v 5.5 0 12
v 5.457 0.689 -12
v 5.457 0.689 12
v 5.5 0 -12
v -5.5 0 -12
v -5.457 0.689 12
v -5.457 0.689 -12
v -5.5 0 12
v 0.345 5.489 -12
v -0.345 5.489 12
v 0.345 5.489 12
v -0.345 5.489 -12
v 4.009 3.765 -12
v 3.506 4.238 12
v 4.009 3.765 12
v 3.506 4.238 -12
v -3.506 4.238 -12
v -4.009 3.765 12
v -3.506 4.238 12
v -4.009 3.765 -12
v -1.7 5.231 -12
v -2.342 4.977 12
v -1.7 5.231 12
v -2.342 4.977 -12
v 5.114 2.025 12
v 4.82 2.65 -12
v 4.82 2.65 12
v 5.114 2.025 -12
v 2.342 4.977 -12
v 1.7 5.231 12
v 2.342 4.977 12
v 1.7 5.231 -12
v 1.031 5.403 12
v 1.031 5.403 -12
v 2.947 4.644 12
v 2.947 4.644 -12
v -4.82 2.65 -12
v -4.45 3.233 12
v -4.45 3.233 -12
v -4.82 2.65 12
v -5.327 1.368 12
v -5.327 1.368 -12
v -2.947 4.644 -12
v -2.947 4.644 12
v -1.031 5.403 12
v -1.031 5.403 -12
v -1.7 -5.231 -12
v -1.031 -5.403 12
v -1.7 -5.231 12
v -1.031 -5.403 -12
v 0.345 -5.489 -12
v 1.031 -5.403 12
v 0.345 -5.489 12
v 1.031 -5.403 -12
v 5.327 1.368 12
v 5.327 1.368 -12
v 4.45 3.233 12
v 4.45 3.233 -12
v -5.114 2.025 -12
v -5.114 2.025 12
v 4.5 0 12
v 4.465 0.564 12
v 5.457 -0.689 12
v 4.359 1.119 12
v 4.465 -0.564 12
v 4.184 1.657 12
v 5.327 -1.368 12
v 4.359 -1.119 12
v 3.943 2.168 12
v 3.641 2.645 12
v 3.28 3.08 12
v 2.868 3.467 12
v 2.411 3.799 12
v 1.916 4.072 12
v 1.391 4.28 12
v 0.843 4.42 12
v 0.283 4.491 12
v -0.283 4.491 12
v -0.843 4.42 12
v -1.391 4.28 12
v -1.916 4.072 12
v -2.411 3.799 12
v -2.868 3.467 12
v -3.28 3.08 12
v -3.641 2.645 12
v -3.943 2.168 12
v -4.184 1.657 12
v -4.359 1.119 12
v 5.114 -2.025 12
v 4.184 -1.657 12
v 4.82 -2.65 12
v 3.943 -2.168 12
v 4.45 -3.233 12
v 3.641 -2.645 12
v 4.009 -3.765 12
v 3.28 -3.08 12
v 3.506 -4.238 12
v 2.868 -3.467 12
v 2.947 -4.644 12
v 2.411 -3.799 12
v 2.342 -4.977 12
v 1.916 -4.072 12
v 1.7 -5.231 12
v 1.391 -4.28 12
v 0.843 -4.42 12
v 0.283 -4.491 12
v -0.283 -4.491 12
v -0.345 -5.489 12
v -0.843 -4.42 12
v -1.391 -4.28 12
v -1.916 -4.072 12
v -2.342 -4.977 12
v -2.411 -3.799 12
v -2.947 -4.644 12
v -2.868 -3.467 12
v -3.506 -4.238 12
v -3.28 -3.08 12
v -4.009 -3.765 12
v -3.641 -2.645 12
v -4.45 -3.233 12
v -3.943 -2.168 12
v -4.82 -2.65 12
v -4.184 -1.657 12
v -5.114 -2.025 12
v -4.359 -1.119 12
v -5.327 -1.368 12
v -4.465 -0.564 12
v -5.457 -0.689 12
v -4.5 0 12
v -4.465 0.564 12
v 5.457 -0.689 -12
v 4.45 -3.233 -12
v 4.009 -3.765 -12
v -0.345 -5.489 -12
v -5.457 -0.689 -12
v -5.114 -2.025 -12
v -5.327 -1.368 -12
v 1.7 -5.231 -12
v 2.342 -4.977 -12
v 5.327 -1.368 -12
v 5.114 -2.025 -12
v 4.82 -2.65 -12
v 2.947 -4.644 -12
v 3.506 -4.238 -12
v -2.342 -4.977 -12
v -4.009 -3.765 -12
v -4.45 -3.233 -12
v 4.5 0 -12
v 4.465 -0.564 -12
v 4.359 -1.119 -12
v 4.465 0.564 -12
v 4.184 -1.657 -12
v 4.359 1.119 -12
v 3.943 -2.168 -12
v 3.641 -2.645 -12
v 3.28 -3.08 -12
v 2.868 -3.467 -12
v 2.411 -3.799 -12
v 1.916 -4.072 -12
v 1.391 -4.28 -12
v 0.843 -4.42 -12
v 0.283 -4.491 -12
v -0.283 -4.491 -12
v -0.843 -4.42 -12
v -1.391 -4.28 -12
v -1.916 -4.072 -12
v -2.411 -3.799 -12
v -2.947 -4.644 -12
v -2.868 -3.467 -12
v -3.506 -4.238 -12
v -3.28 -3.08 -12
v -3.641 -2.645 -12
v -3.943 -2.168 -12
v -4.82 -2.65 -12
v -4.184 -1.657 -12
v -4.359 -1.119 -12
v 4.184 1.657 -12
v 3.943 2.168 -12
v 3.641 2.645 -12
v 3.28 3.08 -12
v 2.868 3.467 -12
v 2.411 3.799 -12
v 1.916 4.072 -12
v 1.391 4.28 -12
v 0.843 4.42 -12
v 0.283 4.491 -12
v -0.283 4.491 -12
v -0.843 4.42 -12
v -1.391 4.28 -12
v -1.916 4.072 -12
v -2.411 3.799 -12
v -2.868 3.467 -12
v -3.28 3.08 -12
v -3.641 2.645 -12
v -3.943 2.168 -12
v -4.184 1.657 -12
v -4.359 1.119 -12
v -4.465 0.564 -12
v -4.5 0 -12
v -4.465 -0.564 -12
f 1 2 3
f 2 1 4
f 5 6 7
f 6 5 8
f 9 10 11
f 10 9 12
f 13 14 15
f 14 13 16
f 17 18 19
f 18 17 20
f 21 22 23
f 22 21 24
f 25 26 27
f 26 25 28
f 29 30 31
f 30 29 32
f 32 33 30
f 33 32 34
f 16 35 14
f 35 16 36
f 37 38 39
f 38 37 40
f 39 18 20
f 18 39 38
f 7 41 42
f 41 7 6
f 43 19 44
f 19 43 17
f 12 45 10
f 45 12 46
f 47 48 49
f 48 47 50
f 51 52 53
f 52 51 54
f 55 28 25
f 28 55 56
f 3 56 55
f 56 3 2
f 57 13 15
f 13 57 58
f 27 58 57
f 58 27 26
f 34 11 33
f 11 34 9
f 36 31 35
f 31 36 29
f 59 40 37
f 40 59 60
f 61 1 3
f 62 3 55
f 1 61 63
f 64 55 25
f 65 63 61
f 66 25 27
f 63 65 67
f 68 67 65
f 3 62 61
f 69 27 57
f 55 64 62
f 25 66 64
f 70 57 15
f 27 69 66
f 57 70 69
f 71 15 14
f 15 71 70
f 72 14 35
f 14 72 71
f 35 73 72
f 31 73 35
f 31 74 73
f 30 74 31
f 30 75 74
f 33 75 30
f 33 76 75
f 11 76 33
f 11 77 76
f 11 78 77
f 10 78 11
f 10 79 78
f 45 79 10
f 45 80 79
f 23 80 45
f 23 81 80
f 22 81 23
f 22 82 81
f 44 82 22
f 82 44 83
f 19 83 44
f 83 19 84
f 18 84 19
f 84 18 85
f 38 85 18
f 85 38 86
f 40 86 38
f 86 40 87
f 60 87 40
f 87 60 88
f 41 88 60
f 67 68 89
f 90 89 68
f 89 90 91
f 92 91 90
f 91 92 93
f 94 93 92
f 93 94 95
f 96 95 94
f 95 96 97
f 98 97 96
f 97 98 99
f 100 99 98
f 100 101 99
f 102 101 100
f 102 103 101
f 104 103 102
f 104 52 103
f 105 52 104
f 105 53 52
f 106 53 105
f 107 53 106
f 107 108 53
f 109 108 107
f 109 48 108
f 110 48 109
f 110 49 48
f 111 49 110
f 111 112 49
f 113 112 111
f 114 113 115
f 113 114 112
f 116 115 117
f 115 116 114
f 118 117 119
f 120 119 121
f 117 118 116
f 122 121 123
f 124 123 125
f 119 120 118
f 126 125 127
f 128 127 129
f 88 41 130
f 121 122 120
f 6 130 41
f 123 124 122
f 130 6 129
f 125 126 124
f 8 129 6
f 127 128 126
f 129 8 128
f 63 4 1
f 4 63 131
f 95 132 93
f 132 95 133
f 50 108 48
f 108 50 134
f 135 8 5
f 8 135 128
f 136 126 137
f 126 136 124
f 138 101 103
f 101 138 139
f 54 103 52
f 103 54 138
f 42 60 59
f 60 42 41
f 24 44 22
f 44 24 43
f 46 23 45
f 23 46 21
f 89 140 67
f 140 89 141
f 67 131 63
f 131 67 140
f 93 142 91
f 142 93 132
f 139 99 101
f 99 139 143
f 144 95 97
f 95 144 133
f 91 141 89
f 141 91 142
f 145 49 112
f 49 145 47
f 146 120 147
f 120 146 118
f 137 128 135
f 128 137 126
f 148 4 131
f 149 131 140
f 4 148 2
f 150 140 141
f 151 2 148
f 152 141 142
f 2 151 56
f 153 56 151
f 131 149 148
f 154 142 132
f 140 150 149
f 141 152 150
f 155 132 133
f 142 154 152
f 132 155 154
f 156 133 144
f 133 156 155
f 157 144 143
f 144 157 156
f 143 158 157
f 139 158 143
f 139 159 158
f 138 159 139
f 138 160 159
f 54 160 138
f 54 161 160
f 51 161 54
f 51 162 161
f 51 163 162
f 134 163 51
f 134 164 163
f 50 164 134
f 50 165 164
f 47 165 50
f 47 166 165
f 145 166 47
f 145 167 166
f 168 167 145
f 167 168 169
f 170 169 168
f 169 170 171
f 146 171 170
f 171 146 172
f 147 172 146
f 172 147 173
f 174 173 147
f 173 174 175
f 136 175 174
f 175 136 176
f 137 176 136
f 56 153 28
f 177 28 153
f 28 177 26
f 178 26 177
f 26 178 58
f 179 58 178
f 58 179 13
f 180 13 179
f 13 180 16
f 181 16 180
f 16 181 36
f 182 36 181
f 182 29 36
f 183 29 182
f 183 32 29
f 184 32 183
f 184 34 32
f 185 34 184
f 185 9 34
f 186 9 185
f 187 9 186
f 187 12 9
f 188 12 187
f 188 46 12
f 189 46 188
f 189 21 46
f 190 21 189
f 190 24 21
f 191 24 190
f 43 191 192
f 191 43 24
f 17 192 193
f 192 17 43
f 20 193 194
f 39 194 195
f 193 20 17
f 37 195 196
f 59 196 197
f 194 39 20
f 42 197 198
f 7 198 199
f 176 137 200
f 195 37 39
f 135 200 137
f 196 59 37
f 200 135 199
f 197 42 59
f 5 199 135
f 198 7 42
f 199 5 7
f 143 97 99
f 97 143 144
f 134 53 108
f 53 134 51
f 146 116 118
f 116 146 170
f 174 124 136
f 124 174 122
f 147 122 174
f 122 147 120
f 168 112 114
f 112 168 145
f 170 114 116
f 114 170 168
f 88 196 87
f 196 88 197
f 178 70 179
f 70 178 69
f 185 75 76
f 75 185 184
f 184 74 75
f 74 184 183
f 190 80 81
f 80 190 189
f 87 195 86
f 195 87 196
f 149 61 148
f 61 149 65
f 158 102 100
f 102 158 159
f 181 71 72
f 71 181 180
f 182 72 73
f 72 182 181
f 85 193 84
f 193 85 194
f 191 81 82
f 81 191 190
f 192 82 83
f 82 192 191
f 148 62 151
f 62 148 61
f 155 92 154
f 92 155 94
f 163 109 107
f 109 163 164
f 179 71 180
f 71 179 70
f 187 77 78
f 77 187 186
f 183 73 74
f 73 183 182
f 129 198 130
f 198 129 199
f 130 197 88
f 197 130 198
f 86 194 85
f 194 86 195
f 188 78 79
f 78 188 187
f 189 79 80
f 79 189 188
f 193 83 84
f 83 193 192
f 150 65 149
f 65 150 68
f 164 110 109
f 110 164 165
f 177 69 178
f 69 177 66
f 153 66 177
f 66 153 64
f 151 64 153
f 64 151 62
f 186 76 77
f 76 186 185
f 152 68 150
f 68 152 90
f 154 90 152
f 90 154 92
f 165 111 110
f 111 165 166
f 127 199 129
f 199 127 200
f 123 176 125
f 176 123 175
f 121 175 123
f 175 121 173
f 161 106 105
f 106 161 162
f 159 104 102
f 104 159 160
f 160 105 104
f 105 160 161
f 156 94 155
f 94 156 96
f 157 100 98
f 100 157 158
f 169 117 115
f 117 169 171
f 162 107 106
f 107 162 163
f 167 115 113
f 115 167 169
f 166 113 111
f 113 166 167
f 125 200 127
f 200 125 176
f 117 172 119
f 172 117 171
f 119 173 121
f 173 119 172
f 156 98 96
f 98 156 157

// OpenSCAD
$fn = 50;


difference() {
	union() {
		translate(v = [0, 0, -12.0000000000]) {
			cylinder(h = 24, r = 5.5000000000);
		}
	}
	union() {
		translate(v = [0, 0, -100.0000000000]) {
			cylinder(h = 200, r = 4.5000000000);
		}
	}
}
